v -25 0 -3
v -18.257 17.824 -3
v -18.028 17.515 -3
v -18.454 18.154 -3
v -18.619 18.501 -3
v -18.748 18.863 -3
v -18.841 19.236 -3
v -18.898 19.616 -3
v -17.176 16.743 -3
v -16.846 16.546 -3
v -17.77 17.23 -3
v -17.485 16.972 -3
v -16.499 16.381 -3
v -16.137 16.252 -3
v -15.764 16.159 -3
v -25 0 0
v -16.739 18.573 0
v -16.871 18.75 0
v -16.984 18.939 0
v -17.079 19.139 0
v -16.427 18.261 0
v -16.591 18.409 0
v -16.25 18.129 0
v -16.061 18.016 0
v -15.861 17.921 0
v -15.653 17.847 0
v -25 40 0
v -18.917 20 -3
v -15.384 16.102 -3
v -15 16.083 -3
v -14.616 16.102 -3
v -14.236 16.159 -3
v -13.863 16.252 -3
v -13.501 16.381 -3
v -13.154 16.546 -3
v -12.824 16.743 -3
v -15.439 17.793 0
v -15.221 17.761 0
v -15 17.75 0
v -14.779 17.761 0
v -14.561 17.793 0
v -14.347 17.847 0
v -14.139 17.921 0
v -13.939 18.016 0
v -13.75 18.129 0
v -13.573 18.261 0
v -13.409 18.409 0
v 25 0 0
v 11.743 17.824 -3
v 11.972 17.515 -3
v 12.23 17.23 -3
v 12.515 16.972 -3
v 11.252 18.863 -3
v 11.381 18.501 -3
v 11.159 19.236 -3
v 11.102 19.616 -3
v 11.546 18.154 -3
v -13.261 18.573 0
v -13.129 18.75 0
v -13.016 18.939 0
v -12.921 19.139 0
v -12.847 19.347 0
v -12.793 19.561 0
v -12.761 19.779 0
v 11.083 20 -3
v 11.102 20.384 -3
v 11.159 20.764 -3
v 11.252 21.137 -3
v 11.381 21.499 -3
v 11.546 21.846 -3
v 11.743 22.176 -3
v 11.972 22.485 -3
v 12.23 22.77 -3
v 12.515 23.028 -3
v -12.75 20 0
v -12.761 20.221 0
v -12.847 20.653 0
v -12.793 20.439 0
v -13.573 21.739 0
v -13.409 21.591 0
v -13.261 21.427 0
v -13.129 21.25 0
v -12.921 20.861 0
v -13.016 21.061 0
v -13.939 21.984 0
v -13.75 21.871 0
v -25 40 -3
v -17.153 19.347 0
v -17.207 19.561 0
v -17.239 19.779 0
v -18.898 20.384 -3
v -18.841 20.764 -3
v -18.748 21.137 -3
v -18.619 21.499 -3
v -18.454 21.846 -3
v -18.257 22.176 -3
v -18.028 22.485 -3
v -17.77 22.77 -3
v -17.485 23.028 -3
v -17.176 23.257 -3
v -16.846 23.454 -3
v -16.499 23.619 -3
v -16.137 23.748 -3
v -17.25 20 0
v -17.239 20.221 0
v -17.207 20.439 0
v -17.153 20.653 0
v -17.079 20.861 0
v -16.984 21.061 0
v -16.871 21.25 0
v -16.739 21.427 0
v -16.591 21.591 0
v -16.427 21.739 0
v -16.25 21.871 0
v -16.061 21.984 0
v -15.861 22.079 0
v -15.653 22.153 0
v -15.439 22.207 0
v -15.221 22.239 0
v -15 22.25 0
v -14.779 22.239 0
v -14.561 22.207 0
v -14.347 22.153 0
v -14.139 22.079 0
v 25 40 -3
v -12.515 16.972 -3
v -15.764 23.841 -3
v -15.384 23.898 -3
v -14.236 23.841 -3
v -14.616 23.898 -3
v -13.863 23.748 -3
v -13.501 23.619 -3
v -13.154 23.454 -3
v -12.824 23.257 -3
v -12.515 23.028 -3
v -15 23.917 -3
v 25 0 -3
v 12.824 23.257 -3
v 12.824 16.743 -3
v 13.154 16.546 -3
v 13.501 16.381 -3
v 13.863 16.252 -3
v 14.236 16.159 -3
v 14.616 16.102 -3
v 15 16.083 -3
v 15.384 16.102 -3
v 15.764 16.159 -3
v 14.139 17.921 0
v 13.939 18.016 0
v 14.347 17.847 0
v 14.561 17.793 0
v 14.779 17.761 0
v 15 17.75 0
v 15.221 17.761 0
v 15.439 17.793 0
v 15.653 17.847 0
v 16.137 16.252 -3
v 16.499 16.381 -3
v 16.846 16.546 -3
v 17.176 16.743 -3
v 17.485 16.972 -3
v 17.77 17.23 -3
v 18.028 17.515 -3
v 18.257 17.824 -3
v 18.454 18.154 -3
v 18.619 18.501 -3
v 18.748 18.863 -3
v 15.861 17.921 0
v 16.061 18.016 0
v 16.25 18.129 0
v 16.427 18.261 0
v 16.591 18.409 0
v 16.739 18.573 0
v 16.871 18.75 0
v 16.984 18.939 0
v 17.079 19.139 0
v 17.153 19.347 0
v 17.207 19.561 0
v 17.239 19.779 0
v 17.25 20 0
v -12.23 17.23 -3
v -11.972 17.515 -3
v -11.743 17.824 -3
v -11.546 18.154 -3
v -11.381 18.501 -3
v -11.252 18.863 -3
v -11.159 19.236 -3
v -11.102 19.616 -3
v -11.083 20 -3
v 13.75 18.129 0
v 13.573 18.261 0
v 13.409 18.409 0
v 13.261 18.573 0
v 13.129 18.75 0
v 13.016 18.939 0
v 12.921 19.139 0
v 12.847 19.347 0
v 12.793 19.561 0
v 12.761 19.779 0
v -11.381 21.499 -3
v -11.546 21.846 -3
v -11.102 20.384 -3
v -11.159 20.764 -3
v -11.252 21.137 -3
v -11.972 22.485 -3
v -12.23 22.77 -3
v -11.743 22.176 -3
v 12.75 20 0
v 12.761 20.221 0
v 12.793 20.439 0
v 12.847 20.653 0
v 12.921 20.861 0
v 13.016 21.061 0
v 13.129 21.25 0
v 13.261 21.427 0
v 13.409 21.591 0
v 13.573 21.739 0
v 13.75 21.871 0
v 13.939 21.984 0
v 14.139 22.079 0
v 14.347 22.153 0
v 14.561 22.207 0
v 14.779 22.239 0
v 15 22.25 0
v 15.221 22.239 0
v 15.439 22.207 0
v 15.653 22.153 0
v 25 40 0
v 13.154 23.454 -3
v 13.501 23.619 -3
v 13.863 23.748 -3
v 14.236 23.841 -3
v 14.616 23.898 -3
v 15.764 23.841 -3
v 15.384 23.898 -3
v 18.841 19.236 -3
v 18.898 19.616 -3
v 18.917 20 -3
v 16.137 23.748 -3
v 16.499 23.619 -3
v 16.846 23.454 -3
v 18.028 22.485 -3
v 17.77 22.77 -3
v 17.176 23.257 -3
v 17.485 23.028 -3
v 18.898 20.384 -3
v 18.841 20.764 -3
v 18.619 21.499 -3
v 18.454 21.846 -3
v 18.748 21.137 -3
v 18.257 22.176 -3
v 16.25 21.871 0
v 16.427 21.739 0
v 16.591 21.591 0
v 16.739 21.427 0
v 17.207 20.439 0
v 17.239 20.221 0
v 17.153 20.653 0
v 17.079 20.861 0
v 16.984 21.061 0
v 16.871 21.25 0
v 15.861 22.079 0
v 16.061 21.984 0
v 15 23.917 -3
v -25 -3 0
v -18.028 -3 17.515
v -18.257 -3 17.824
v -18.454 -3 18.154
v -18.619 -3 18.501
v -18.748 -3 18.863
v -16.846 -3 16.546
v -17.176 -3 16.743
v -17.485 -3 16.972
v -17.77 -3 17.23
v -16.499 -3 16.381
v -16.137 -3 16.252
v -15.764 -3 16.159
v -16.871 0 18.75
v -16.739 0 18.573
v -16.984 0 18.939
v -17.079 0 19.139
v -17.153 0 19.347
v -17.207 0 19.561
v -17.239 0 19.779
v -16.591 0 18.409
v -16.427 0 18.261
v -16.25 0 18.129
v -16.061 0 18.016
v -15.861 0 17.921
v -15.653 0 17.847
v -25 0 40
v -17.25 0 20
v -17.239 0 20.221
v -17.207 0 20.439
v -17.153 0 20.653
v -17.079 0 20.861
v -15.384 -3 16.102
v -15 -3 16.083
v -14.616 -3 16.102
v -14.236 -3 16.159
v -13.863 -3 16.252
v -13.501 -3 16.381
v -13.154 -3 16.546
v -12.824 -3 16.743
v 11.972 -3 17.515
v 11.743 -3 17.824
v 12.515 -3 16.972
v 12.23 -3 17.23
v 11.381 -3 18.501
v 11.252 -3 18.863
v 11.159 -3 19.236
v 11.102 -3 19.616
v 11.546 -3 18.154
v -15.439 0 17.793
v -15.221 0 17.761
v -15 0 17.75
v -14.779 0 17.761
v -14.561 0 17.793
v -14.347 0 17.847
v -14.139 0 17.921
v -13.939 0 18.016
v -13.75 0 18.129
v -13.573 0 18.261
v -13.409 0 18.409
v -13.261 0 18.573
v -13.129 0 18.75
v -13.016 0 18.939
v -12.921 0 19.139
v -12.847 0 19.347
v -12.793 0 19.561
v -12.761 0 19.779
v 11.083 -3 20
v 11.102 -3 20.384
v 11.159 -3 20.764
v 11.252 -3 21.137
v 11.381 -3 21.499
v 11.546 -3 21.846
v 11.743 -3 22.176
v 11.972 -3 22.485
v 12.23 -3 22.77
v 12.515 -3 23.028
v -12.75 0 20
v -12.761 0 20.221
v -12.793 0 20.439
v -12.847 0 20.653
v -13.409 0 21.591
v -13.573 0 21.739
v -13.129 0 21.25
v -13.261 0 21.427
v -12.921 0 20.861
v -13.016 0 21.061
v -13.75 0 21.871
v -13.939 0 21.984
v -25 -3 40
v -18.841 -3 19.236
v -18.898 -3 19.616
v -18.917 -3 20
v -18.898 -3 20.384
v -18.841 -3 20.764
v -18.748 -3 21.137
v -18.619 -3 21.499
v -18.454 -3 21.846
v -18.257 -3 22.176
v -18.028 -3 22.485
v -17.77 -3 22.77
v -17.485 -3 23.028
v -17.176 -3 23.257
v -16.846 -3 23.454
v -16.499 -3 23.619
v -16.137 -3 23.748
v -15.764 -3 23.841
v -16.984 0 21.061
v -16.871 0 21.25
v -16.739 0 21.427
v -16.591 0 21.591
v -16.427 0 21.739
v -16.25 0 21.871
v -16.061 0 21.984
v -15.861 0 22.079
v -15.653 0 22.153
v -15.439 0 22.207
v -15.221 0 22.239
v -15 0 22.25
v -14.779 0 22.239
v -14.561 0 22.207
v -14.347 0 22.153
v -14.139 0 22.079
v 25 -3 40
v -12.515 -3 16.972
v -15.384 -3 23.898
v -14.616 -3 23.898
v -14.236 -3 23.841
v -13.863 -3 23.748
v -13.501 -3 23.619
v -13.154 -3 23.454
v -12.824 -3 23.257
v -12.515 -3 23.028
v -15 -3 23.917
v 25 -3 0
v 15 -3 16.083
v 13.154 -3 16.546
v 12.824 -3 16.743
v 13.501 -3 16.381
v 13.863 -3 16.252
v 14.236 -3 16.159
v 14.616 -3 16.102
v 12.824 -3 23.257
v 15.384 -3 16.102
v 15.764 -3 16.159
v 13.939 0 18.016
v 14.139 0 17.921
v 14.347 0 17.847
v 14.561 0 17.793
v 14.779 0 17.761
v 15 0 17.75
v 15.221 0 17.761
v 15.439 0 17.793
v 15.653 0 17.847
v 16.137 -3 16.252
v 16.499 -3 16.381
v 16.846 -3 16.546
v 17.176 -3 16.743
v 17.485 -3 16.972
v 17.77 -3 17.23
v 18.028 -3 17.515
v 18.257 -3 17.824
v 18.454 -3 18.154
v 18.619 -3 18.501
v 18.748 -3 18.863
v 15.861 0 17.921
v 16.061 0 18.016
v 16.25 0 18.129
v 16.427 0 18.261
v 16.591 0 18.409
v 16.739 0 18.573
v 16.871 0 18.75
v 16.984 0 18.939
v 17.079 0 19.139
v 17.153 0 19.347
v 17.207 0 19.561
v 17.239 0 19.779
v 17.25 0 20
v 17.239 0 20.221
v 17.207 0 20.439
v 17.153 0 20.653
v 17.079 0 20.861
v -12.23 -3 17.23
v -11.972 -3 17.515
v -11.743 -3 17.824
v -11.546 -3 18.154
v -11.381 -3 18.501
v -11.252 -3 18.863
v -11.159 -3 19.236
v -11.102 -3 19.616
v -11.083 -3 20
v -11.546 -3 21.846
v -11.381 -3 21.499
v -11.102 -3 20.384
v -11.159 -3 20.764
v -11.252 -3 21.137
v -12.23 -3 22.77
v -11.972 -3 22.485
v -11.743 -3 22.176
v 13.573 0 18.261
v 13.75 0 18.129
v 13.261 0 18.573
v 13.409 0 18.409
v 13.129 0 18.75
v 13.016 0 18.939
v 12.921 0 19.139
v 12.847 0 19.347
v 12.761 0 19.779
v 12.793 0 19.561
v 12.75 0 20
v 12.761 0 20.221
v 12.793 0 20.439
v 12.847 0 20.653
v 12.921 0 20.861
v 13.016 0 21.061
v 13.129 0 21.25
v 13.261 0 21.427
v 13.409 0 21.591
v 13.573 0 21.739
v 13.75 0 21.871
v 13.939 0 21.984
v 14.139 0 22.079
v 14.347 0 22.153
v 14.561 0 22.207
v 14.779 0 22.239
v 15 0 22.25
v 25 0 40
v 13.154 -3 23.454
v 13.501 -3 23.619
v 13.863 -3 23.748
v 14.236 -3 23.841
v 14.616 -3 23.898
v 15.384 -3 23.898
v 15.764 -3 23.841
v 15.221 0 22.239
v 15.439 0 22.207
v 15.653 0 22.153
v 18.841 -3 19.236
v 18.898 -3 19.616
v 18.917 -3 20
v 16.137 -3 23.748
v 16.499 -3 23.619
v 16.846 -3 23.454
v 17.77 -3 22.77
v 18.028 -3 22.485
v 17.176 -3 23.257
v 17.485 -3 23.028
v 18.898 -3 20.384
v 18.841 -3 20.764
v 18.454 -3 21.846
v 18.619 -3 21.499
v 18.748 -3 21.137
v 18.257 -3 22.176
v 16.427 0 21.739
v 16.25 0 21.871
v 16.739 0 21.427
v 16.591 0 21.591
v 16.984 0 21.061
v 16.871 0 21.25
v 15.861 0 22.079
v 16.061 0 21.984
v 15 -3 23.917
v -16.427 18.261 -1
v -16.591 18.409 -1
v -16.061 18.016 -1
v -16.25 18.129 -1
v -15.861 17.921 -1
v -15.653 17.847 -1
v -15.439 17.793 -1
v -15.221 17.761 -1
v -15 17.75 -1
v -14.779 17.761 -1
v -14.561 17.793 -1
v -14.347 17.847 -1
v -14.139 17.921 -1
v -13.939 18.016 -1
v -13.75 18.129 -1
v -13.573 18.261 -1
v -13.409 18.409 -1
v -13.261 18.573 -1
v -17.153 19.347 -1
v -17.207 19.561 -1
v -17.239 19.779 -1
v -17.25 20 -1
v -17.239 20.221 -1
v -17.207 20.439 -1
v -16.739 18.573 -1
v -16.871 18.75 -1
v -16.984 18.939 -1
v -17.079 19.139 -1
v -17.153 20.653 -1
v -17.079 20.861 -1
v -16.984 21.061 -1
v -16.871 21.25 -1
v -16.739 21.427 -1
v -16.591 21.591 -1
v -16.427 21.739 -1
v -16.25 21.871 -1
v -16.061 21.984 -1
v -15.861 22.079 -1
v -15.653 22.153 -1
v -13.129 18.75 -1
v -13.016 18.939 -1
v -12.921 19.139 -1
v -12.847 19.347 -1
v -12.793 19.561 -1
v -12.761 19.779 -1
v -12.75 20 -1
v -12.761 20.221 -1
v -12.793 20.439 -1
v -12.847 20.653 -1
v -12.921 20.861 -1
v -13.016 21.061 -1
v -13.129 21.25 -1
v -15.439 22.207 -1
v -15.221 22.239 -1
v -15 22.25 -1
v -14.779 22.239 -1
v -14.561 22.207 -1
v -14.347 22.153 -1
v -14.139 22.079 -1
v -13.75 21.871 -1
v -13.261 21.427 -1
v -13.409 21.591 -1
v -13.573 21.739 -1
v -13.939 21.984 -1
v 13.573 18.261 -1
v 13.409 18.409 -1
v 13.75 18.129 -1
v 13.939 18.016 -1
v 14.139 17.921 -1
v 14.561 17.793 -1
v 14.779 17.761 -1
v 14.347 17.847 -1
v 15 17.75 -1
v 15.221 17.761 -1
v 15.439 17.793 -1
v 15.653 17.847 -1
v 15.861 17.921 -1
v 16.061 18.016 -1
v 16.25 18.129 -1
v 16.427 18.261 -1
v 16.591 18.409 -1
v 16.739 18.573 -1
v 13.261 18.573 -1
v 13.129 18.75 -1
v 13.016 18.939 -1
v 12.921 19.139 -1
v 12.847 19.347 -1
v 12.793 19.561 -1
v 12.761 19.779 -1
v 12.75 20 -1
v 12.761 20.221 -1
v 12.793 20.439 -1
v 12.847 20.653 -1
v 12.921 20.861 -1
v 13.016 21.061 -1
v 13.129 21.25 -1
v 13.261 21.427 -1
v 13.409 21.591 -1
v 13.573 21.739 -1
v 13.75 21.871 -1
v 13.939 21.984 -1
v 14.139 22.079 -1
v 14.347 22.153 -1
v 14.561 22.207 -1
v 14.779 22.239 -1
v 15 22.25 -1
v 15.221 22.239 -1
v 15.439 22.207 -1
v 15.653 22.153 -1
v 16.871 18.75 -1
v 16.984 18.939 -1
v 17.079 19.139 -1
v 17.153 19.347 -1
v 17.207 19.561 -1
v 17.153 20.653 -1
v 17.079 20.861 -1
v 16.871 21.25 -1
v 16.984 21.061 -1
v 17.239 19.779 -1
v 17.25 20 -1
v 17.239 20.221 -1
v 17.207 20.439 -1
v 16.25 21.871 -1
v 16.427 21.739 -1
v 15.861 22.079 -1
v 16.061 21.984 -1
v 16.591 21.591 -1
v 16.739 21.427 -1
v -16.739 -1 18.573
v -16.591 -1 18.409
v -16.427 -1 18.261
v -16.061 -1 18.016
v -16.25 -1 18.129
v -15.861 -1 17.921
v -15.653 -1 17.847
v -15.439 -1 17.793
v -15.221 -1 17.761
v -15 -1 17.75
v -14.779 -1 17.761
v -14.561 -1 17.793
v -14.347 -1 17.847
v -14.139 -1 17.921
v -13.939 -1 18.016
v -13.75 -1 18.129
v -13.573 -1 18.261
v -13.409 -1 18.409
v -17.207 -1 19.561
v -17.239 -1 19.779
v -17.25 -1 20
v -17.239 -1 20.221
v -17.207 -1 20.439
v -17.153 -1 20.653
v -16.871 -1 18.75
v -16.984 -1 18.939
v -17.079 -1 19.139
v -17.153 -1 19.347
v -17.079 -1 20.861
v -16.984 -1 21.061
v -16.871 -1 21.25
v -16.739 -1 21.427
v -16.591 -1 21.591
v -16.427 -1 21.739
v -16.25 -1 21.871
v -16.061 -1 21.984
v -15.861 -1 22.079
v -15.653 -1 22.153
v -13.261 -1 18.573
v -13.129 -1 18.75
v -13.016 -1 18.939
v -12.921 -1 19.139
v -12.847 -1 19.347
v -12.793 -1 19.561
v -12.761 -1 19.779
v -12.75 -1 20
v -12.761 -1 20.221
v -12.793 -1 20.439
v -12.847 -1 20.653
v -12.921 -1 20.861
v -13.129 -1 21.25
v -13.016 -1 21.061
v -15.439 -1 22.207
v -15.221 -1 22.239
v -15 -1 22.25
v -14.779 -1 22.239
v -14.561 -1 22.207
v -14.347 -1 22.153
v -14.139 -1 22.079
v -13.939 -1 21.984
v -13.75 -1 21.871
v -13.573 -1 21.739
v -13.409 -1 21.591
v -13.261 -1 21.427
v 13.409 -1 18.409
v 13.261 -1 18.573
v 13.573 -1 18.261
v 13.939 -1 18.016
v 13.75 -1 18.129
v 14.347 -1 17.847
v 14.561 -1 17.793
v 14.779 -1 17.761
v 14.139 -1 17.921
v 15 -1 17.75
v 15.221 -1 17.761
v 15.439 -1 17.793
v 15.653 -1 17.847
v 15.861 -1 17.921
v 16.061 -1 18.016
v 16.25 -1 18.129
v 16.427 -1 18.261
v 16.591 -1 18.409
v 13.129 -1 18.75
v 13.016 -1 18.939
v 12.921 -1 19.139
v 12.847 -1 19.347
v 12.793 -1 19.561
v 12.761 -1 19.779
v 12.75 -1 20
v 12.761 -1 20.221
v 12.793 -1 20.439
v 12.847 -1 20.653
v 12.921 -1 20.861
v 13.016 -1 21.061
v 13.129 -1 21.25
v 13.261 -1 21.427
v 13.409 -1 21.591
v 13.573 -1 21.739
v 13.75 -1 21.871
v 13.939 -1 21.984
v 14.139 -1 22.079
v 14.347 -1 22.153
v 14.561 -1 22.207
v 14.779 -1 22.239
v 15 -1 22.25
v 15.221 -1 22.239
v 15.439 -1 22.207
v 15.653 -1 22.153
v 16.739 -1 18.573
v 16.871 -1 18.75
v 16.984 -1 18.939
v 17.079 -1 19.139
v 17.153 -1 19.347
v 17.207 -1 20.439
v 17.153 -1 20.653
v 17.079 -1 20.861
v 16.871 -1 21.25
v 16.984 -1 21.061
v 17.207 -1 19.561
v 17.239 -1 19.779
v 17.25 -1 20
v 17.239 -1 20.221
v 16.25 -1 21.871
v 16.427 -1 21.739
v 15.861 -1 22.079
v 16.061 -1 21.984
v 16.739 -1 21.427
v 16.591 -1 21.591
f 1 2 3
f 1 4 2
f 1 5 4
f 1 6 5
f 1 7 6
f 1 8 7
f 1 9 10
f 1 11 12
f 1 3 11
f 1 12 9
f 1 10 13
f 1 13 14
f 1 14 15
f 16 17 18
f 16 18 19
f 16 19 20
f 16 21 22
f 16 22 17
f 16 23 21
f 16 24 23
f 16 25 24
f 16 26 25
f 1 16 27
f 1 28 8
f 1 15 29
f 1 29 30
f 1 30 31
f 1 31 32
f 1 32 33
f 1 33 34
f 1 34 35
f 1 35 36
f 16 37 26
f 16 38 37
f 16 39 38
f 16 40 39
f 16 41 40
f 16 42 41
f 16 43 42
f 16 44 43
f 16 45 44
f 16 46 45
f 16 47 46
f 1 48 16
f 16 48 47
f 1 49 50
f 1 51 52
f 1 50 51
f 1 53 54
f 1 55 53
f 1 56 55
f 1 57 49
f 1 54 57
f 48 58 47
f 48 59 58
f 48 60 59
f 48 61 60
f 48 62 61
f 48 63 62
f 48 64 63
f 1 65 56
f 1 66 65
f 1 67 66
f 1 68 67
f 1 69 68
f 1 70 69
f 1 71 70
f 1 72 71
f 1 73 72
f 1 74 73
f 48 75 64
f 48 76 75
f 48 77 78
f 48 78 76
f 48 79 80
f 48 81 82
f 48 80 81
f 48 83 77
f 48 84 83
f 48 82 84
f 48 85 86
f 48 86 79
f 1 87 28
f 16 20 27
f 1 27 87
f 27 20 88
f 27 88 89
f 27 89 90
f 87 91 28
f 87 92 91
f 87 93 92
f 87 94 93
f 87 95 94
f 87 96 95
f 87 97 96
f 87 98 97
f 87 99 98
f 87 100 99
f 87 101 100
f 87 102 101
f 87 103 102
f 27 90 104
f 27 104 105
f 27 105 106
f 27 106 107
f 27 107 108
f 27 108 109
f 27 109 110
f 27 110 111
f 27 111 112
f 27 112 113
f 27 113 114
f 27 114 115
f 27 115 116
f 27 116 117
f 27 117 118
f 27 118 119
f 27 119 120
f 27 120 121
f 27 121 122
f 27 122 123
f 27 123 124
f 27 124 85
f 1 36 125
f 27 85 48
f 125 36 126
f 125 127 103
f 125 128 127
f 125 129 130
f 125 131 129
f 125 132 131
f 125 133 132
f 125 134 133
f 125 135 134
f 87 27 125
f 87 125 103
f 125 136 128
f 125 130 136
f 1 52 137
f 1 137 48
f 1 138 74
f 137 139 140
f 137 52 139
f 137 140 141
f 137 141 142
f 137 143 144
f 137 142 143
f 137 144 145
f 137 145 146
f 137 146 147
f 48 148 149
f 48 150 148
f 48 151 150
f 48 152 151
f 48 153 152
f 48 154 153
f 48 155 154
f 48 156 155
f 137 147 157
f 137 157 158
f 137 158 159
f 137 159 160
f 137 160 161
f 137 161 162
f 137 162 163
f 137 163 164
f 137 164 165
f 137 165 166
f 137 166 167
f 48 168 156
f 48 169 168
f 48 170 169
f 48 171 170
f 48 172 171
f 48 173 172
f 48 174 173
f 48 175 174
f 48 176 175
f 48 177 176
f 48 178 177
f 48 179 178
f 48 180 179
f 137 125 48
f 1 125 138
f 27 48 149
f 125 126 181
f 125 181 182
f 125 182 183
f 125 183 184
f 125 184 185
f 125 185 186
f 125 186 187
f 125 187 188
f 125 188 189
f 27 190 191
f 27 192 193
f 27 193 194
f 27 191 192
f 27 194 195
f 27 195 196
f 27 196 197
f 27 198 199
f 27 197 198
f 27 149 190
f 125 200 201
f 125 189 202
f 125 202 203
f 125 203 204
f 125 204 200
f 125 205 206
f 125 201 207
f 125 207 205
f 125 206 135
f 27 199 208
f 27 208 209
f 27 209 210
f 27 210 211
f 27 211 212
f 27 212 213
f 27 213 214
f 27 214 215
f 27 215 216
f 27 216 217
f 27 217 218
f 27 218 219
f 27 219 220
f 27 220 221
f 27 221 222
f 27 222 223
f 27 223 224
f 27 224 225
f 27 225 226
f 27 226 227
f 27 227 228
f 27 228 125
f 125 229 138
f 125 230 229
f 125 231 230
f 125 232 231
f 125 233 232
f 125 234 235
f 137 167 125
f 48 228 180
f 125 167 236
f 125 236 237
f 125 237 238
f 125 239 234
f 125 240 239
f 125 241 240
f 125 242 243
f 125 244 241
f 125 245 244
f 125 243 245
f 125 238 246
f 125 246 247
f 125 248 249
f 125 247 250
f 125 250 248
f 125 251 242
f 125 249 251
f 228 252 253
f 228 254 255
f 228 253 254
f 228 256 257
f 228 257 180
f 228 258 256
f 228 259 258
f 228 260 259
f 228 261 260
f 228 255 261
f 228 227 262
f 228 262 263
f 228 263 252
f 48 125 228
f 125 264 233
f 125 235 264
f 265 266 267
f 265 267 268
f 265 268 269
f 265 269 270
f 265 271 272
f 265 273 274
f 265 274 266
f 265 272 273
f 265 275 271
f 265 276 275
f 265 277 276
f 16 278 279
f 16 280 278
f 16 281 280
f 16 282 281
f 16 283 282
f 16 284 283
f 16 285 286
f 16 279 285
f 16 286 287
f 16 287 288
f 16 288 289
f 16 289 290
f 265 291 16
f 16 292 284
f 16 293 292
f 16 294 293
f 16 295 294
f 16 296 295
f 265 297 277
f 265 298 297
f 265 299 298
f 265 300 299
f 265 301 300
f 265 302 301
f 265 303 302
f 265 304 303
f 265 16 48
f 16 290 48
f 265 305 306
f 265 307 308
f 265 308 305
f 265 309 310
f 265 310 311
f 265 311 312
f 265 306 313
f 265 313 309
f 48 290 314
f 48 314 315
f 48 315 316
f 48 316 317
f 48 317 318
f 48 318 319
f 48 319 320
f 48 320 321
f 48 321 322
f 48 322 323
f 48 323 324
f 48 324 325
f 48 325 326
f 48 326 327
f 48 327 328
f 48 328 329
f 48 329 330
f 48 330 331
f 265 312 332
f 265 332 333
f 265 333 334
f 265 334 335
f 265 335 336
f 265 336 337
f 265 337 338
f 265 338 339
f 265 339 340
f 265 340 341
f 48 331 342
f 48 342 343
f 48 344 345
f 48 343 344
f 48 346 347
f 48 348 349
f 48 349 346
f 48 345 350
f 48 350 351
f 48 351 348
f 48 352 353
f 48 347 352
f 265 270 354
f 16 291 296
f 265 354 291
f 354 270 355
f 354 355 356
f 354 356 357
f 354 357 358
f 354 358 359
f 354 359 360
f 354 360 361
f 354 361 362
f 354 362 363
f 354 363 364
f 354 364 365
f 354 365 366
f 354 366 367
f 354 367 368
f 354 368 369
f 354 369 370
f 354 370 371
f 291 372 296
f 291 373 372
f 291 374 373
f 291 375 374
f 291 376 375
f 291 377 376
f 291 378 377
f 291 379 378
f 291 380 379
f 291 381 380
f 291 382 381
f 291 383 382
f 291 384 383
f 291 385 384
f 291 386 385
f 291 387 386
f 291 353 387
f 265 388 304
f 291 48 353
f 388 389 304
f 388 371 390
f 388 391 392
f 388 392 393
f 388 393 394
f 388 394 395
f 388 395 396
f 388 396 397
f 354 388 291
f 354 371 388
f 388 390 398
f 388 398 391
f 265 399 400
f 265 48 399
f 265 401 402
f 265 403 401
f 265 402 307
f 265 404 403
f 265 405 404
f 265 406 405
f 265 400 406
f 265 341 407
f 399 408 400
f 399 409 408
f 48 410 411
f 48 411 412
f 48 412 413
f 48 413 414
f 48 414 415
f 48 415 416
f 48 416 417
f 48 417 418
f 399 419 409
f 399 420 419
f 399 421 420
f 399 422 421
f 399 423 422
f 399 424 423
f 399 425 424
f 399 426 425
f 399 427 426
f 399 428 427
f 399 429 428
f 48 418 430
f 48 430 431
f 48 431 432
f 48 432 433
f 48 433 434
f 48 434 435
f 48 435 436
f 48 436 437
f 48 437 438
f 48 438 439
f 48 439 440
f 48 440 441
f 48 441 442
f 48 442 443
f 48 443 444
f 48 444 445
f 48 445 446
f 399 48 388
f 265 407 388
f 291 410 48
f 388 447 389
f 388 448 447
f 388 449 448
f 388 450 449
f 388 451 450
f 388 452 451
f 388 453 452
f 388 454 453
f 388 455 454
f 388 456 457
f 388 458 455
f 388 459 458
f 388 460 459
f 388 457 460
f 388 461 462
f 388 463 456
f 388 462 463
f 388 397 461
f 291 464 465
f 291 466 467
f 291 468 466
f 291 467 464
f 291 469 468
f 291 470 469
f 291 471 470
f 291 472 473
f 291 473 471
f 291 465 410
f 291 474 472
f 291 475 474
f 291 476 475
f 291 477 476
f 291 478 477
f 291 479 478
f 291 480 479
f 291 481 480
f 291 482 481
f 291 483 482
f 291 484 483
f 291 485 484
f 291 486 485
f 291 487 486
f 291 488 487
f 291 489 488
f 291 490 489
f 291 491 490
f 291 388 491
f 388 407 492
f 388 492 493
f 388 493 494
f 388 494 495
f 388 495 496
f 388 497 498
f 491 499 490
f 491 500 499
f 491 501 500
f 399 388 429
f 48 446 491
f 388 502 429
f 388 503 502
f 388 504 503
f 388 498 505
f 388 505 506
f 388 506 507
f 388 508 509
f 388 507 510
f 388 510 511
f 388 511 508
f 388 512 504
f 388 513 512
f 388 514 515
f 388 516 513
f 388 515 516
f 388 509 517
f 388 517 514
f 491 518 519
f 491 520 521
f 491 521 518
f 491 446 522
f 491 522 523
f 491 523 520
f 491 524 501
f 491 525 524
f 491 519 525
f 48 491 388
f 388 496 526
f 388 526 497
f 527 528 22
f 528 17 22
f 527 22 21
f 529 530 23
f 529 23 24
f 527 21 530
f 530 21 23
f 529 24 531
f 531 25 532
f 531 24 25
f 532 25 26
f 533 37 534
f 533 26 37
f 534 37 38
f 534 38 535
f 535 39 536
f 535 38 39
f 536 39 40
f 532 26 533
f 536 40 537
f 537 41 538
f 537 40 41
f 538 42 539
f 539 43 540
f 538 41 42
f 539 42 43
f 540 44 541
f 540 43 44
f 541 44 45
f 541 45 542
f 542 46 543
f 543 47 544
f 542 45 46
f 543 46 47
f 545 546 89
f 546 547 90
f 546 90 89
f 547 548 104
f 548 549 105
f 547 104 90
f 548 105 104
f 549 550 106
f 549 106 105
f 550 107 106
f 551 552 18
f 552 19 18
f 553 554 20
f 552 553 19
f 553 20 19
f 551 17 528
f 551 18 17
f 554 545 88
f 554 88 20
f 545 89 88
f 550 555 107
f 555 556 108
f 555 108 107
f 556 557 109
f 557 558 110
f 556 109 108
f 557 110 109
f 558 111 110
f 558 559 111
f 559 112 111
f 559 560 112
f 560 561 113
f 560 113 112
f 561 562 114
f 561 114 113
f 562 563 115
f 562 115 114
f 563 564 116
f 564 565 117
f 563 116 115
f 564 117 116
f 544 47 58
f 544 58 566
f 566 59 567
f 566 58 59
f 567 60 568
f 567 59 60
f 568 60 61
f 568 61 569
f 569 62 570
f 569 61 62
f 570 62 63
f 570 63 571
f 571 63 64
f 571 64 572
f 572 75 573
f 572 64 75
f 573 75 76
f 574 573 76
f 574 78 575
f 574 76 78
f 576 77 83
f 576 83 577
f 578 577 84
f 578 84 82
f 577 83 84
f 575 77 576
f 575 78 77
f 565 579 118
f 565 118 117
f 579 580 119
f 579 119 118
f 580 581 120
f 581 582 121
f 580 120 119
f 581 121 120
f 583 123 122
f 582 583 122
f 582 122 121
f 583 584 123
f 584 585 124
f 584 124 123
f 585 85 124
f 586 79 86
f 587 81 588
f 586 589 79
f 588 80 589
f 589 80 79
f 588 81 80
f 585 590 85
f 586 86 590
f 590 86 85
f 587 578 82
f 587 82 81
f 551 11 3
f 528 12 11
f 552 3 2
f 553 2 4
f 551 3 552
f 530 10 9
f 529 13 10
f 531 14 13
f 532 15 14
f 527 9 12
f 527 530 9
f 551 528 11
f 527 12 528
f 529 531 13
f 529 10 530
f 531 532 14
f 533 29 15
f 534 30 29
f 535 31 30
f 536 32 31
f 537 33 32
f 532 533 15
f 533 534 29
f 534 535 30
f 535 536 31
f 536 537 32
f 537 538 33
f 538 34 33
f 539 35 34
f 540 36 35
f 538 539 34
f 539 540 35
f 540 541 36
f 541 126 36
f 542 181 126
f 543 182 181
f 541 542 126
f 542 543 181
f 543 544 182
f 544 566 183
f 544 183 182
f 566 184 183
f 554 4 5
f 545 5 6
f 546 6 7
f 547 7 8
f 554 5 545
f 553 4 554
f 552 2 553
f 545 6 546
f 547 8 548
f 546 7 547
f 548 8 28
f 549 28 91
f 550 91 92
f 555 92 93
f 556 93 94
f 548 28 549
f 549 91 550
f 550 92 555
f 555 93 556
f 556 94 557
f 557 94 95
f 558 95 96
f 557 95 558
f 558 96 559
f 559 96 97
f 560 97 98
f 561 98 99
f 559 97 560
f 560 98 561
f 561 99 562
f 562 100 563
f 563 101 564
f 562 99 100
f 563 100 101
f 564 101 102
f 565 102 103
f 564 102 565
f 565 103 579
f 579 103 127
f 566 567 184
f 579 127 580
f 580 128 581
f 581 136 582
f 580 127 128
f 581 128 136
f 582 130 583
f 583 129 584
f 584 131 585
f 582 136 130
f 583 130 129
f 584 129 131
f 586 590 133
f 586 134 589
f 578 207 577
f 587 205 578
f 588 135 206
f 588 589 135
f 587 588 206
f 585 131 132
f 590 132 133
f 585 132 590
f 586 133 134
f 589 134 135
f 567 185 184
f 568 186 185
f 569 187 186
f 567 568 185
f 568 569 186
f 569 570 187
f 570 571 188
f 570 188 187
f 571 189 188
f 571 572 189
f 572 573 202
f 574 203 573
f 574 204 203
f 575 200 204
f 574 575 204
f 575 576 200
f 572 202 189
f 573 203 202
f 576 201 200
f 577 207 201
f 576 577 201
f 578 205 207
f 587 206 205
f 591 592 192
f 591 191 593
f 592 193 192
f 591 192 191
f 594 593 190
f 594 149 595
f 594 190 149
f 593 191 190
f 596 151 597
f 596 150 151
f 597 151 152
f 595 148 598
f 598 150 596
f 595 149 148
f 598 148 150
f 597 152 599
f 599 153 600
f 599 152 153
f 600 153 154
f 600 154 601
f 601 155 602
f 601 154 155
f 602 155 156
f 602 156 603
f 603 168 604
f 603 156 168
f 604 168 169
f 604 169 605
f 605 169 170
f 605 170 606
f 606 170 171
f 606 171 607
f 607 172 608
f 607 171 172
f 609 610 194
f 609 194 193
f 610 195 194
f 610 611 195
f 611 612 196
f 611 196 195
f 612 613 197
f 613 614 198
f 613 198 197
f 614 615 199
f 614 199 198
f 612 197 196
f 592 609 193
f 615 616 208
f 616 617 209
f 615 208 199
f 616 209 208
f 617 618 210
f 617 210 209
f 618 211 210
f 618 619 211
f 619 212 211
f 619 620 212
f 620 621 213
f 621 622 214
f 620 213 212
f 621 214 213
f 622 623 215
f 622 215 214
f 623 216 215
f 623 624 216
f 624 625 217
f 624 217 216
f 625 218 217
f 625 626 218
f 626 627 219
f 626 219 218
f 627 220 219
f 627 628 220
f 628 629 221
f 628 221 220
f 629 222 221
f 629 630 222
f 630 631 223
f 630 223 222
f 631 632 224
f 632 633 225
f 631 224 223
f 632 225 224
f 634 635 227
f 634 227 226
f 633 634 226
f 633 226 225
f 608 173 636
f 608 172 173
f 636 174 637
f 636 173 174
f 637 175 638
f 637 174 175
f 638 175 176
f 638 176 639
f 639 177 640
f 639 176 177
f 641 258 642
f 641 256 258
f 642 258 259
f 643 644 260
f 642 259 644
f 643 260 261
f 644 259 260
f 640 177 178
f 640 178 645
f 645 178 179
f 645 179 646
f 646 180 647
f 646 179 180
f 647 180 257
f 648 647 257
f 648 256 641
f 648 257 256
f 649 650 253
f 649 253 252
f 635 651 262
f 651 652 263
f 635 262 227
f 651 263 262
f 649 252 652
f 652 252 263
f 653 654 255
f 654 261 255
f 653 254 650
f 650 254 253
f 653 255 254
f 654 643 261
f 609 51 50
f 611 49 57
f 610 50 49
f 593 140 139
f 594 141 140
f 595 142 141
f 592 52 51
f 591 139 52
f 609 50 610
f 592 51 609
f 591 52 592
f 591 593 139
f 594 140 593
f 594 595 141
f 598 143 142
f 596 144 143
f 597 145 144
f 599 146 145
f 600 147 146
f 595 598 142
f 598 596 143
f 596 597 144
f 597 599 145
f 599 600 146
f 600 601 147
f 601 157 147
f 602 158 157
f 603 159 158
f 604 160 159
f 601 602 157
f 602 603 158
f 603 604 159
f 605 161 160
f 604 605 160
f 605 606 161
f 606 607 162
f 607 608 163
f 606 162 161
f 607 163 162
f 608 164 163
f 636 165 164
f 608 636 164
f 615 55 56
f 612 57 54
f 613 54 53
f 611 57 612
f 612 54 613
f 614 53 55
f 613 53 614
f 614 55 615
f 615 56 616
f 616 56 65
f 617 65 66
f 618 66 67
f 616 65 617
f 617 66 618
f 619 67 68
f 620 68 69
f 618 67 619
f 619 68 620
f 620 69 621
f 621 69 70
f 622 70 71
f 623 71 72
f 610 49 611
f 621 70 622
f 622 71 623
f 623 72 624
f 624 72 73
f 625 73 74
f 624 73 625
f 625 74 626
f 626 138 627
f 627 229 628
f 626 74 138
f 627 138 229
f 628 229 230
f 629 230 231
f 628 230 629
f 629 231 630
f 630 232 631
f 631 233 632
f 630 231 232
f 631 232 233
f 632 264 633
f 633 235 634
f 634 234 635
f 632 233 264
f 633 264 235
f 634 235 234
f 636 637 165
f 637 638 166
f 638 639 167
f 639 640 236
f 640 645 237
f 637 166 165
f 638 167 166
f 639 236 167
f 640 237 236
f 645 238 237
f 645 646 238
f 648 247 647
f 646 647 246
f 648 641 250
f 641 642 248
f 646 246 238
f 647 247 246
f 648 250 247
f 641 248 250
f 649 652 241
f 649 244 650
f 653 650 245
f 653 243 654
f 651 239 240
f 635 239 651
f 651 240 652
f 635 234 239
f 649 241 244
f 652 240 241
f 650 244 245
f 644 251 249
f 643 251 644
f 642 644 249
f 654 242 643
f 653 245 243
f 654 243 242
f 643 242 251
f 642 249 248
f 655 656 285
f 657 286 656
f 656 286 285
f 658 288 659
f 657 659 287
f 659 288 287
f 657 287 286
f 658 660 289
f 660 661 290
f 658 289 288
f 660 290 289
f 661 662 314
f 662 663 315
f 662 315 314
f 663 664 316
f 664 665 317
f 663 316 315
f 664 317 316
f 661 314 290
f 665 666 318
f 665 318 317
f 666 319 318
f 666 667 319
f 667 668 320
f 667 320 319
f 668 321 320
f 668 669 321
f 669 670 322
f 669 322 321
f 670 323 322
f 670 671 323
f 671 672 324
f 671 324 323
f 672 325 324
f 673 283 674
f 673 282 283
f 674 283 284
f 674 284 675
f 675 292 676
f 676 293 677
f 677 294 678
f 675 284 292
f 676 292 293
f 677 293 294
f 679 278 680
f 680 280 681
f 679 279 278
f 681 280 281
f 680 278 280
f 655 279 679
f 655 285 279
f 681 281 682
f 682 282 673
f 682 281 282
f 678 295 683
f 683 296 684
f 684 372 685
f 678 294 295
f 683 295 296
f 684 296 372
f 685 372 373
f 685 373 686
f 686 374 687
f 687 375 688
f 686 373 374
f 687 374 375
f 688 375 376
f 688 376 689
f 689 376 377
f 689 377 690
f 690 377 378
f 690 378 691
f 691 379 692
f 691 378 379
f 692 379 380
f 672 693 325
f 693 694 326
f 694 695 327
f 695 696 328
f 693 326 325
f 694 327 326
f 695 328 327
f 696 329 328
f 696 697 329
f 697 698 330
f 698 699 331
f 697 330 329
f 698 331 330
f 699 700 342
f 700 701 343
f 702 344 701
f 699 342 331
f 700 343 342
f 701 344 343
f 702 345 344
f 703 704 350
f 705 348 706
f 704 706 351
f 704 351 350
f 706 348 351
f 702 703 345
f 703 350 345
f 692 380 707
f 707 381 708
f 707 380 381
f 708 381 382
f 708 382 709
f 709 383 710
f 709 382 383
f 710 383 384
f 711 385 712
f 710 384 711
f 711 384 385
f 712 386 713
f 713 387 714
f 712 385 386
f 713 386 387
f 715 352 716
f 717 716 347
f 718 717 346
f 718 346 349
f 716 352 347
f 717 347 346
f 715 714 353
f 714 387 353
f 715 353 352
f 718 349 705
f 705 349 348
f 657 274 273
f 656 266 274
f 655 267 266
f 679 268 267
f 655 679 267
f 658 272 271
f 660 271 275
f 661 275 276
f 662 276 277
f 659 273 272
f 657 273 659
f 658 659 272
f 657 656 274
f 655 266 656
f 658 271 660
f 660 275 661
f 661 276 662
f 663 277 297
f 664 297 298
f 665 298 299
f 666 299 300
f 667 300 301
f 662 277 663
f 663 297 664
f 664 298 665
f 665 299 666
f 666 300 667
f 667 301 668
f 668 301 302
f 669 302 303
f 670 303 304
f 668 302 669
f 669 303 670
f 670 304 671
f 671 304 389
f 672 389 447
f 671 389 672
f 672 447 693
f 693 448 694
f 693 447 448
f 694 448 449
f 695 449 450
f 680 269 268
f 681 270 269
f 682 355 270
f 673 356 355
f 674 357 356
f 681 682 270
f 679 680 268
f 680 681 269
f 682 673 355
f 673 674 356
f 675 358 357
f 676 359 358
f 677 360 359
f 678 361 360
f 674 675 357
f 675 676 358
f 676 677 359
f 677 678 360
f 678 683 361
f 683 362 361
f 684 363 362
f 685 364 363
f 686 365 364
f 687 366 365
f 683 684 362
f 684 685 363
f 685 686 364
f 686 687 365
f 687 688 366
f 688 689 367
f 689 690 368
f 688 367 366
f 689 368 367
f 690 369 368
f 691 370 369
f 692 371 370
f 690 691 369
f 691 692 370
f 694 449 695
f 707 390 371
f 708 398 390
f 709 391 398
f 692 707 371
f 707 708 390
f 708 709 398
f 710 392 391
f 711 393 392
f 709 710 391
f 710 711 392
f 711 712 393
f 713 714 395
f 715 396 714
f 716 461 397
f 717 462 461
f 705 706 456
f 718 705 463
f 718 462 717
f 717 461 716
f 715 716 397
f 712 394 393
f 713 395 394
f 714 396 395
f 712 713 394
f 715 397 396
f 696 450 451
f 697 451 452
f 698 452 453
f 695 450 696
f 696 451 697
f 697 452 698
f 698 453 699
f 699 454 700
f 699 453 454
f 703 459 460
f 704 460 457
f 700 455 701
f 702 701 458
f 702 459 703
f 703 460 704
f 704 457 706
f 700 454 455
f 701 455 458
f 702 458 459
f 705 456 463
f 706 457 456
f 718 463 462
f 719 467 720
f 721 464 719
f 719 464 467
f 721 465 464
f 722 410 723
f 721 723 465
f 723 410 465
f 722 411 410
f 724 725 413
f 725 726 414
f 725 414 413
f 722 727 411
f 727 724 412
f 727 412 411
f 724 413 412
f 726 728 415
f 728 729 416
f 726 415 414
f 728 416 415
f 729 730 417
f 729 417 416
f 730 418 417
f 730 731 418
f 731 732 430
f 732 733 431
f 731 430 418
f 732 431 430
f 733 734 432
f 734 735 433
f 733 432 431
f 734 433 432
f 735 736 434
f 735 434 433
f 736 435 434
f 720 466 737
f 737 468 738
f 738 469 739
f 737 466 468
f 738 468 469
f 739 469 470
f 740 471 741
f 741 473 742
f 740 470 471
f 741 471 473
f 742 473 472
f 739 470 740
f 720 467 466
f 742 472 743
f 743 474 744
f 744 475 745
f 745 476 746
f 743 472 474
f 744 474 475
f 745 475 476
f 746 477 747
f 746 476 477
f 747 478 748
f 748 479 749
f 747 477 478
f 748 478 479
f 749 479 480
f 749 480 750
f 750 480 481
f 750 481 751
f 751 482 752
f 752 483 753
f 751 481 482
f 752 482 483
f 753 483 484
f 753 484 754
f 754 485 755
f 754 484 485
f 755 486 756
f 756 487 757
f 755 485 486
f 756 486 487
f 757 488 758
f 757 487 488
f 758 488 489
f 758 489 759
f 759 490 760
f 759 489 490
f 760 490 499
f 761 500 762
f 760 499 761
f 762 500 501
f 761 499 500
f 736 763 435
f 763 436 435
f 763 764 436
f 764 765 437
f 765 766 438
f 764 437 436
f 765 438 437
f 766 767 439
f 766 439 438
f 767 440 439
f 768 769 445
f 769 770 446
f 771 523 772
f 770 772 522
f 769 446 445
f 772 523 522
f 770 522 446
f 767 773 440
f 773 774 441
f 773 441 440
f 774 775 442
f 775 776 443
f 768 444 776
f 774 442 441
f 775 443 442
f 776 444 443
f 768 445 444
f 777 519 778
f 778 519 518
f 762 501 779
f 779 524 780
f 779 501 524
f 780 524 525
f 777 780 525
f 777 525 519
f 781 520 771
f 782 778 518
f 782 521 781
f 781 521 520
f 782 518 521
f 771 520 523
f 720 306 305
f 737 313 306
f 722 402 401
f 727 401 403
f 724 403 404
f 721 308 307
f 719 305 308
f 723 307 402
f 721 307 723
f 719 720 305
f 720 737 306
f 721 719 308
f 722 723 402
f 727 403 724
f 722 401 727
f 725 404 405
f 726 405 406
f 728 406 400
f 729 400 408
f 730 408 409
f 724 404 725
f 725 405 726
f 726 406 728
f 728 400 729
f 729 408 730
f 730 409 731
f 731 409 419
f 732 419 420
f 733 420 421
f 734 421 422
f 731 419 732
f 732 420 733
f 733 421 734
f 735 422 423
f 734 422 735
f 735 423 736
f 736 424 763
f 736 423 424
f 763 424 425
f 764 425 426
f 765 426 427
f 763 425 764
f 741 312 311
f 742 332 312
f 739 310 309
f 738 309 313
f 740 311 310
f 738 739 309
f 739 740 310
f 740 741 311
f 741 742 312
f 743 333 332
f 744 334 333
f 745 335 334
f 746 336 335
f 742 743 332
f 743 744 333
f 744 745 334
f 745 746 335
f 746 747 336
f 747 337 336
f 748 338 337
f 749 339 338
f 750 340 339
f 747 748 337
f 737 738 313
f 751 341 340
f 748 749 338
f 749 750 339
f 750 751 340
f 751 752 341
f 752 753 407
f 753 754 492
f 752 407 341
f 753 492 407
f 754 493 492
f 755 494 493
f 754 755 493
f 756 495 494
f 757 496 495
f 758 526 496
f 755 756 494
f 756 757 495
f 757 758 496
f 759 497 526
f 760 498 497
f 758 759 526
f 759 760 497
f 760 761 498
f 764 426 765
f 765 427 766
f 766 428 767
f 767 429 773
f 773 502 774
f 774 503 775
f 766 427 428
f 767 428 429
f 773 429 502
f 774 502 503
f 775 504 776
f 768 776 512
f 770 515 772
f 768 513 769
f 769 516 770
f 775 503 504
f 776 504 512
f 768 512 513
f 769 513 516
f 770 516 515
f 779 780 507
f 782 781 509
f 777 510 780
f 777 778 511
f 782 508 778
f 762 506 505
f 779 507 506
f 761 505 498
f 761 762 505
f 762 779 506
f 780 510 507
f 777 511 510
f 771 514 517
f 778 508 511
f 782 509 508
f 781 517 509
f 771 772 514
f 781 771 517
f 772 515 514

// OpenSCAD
$fn = 64;

// 寸法
width          = 50;
flange_length  = 40;
thickness      = 3;

hole_diameter  = 4.5;
cs_diameter    = 8;
cs_depth       = 2;

edge_offset    = 10;
hole_x         = width / 2 - edge_offset;

// 水平面の穴（外側: -Z 側）
module horizontal_hole(x, y) {
    // 貫通穴
    translate([x, y, -thickness - 0.1])
        cylinder(h = thickness + 0.2, d = hole_diameter);

    // 皿穴
    translate([x, y, -thickness - 0.1])
        cylinder(
            h  = cs_depth + 0.1,
            d1 = cs_diameter,
            d2 = hole_diameter
        );
}

// 垂直面の穴（外側: -Y 側）
module vertical_hole(x, z) {
    // 貫通穴
    translate([x, -thickness - 0.1, z])
        rotate([-90, 0, 0])
            cylinder(h = thickness + 0.2, d = hole_diameter);

    // 皿穴
    translate([x, -thickness - 0.1, z])
        rotate([-90, 0, 0])
            cylinder(
                h  = cs_depth + 0.1,
                d1 = cs_diameter,
                d2 = hole_diameter
            );
}

difference() {
    union() {
        // 水平フランジ：+Y 方向へ伸びる
        translate([-width / 2, 0, -thickness])
            cube([width, flange_length, thickness]);

        // 垂直フランジ：+Z 方向へ伸びる
        translate([-width / 2, -thickness, 0])
            cube([width, thickness, flange_length]);
    }

    // 水平面の穴
    horizontal_hole(-hole_x, flange_length / 2);
    horizontal_hole( hole_x, flange_length / 2);

    // 垂直面の穴
    vertical_hole(-hole_x, flange_length / 2);
    vertical_hole( hole_x, flange_length / 2);
}
